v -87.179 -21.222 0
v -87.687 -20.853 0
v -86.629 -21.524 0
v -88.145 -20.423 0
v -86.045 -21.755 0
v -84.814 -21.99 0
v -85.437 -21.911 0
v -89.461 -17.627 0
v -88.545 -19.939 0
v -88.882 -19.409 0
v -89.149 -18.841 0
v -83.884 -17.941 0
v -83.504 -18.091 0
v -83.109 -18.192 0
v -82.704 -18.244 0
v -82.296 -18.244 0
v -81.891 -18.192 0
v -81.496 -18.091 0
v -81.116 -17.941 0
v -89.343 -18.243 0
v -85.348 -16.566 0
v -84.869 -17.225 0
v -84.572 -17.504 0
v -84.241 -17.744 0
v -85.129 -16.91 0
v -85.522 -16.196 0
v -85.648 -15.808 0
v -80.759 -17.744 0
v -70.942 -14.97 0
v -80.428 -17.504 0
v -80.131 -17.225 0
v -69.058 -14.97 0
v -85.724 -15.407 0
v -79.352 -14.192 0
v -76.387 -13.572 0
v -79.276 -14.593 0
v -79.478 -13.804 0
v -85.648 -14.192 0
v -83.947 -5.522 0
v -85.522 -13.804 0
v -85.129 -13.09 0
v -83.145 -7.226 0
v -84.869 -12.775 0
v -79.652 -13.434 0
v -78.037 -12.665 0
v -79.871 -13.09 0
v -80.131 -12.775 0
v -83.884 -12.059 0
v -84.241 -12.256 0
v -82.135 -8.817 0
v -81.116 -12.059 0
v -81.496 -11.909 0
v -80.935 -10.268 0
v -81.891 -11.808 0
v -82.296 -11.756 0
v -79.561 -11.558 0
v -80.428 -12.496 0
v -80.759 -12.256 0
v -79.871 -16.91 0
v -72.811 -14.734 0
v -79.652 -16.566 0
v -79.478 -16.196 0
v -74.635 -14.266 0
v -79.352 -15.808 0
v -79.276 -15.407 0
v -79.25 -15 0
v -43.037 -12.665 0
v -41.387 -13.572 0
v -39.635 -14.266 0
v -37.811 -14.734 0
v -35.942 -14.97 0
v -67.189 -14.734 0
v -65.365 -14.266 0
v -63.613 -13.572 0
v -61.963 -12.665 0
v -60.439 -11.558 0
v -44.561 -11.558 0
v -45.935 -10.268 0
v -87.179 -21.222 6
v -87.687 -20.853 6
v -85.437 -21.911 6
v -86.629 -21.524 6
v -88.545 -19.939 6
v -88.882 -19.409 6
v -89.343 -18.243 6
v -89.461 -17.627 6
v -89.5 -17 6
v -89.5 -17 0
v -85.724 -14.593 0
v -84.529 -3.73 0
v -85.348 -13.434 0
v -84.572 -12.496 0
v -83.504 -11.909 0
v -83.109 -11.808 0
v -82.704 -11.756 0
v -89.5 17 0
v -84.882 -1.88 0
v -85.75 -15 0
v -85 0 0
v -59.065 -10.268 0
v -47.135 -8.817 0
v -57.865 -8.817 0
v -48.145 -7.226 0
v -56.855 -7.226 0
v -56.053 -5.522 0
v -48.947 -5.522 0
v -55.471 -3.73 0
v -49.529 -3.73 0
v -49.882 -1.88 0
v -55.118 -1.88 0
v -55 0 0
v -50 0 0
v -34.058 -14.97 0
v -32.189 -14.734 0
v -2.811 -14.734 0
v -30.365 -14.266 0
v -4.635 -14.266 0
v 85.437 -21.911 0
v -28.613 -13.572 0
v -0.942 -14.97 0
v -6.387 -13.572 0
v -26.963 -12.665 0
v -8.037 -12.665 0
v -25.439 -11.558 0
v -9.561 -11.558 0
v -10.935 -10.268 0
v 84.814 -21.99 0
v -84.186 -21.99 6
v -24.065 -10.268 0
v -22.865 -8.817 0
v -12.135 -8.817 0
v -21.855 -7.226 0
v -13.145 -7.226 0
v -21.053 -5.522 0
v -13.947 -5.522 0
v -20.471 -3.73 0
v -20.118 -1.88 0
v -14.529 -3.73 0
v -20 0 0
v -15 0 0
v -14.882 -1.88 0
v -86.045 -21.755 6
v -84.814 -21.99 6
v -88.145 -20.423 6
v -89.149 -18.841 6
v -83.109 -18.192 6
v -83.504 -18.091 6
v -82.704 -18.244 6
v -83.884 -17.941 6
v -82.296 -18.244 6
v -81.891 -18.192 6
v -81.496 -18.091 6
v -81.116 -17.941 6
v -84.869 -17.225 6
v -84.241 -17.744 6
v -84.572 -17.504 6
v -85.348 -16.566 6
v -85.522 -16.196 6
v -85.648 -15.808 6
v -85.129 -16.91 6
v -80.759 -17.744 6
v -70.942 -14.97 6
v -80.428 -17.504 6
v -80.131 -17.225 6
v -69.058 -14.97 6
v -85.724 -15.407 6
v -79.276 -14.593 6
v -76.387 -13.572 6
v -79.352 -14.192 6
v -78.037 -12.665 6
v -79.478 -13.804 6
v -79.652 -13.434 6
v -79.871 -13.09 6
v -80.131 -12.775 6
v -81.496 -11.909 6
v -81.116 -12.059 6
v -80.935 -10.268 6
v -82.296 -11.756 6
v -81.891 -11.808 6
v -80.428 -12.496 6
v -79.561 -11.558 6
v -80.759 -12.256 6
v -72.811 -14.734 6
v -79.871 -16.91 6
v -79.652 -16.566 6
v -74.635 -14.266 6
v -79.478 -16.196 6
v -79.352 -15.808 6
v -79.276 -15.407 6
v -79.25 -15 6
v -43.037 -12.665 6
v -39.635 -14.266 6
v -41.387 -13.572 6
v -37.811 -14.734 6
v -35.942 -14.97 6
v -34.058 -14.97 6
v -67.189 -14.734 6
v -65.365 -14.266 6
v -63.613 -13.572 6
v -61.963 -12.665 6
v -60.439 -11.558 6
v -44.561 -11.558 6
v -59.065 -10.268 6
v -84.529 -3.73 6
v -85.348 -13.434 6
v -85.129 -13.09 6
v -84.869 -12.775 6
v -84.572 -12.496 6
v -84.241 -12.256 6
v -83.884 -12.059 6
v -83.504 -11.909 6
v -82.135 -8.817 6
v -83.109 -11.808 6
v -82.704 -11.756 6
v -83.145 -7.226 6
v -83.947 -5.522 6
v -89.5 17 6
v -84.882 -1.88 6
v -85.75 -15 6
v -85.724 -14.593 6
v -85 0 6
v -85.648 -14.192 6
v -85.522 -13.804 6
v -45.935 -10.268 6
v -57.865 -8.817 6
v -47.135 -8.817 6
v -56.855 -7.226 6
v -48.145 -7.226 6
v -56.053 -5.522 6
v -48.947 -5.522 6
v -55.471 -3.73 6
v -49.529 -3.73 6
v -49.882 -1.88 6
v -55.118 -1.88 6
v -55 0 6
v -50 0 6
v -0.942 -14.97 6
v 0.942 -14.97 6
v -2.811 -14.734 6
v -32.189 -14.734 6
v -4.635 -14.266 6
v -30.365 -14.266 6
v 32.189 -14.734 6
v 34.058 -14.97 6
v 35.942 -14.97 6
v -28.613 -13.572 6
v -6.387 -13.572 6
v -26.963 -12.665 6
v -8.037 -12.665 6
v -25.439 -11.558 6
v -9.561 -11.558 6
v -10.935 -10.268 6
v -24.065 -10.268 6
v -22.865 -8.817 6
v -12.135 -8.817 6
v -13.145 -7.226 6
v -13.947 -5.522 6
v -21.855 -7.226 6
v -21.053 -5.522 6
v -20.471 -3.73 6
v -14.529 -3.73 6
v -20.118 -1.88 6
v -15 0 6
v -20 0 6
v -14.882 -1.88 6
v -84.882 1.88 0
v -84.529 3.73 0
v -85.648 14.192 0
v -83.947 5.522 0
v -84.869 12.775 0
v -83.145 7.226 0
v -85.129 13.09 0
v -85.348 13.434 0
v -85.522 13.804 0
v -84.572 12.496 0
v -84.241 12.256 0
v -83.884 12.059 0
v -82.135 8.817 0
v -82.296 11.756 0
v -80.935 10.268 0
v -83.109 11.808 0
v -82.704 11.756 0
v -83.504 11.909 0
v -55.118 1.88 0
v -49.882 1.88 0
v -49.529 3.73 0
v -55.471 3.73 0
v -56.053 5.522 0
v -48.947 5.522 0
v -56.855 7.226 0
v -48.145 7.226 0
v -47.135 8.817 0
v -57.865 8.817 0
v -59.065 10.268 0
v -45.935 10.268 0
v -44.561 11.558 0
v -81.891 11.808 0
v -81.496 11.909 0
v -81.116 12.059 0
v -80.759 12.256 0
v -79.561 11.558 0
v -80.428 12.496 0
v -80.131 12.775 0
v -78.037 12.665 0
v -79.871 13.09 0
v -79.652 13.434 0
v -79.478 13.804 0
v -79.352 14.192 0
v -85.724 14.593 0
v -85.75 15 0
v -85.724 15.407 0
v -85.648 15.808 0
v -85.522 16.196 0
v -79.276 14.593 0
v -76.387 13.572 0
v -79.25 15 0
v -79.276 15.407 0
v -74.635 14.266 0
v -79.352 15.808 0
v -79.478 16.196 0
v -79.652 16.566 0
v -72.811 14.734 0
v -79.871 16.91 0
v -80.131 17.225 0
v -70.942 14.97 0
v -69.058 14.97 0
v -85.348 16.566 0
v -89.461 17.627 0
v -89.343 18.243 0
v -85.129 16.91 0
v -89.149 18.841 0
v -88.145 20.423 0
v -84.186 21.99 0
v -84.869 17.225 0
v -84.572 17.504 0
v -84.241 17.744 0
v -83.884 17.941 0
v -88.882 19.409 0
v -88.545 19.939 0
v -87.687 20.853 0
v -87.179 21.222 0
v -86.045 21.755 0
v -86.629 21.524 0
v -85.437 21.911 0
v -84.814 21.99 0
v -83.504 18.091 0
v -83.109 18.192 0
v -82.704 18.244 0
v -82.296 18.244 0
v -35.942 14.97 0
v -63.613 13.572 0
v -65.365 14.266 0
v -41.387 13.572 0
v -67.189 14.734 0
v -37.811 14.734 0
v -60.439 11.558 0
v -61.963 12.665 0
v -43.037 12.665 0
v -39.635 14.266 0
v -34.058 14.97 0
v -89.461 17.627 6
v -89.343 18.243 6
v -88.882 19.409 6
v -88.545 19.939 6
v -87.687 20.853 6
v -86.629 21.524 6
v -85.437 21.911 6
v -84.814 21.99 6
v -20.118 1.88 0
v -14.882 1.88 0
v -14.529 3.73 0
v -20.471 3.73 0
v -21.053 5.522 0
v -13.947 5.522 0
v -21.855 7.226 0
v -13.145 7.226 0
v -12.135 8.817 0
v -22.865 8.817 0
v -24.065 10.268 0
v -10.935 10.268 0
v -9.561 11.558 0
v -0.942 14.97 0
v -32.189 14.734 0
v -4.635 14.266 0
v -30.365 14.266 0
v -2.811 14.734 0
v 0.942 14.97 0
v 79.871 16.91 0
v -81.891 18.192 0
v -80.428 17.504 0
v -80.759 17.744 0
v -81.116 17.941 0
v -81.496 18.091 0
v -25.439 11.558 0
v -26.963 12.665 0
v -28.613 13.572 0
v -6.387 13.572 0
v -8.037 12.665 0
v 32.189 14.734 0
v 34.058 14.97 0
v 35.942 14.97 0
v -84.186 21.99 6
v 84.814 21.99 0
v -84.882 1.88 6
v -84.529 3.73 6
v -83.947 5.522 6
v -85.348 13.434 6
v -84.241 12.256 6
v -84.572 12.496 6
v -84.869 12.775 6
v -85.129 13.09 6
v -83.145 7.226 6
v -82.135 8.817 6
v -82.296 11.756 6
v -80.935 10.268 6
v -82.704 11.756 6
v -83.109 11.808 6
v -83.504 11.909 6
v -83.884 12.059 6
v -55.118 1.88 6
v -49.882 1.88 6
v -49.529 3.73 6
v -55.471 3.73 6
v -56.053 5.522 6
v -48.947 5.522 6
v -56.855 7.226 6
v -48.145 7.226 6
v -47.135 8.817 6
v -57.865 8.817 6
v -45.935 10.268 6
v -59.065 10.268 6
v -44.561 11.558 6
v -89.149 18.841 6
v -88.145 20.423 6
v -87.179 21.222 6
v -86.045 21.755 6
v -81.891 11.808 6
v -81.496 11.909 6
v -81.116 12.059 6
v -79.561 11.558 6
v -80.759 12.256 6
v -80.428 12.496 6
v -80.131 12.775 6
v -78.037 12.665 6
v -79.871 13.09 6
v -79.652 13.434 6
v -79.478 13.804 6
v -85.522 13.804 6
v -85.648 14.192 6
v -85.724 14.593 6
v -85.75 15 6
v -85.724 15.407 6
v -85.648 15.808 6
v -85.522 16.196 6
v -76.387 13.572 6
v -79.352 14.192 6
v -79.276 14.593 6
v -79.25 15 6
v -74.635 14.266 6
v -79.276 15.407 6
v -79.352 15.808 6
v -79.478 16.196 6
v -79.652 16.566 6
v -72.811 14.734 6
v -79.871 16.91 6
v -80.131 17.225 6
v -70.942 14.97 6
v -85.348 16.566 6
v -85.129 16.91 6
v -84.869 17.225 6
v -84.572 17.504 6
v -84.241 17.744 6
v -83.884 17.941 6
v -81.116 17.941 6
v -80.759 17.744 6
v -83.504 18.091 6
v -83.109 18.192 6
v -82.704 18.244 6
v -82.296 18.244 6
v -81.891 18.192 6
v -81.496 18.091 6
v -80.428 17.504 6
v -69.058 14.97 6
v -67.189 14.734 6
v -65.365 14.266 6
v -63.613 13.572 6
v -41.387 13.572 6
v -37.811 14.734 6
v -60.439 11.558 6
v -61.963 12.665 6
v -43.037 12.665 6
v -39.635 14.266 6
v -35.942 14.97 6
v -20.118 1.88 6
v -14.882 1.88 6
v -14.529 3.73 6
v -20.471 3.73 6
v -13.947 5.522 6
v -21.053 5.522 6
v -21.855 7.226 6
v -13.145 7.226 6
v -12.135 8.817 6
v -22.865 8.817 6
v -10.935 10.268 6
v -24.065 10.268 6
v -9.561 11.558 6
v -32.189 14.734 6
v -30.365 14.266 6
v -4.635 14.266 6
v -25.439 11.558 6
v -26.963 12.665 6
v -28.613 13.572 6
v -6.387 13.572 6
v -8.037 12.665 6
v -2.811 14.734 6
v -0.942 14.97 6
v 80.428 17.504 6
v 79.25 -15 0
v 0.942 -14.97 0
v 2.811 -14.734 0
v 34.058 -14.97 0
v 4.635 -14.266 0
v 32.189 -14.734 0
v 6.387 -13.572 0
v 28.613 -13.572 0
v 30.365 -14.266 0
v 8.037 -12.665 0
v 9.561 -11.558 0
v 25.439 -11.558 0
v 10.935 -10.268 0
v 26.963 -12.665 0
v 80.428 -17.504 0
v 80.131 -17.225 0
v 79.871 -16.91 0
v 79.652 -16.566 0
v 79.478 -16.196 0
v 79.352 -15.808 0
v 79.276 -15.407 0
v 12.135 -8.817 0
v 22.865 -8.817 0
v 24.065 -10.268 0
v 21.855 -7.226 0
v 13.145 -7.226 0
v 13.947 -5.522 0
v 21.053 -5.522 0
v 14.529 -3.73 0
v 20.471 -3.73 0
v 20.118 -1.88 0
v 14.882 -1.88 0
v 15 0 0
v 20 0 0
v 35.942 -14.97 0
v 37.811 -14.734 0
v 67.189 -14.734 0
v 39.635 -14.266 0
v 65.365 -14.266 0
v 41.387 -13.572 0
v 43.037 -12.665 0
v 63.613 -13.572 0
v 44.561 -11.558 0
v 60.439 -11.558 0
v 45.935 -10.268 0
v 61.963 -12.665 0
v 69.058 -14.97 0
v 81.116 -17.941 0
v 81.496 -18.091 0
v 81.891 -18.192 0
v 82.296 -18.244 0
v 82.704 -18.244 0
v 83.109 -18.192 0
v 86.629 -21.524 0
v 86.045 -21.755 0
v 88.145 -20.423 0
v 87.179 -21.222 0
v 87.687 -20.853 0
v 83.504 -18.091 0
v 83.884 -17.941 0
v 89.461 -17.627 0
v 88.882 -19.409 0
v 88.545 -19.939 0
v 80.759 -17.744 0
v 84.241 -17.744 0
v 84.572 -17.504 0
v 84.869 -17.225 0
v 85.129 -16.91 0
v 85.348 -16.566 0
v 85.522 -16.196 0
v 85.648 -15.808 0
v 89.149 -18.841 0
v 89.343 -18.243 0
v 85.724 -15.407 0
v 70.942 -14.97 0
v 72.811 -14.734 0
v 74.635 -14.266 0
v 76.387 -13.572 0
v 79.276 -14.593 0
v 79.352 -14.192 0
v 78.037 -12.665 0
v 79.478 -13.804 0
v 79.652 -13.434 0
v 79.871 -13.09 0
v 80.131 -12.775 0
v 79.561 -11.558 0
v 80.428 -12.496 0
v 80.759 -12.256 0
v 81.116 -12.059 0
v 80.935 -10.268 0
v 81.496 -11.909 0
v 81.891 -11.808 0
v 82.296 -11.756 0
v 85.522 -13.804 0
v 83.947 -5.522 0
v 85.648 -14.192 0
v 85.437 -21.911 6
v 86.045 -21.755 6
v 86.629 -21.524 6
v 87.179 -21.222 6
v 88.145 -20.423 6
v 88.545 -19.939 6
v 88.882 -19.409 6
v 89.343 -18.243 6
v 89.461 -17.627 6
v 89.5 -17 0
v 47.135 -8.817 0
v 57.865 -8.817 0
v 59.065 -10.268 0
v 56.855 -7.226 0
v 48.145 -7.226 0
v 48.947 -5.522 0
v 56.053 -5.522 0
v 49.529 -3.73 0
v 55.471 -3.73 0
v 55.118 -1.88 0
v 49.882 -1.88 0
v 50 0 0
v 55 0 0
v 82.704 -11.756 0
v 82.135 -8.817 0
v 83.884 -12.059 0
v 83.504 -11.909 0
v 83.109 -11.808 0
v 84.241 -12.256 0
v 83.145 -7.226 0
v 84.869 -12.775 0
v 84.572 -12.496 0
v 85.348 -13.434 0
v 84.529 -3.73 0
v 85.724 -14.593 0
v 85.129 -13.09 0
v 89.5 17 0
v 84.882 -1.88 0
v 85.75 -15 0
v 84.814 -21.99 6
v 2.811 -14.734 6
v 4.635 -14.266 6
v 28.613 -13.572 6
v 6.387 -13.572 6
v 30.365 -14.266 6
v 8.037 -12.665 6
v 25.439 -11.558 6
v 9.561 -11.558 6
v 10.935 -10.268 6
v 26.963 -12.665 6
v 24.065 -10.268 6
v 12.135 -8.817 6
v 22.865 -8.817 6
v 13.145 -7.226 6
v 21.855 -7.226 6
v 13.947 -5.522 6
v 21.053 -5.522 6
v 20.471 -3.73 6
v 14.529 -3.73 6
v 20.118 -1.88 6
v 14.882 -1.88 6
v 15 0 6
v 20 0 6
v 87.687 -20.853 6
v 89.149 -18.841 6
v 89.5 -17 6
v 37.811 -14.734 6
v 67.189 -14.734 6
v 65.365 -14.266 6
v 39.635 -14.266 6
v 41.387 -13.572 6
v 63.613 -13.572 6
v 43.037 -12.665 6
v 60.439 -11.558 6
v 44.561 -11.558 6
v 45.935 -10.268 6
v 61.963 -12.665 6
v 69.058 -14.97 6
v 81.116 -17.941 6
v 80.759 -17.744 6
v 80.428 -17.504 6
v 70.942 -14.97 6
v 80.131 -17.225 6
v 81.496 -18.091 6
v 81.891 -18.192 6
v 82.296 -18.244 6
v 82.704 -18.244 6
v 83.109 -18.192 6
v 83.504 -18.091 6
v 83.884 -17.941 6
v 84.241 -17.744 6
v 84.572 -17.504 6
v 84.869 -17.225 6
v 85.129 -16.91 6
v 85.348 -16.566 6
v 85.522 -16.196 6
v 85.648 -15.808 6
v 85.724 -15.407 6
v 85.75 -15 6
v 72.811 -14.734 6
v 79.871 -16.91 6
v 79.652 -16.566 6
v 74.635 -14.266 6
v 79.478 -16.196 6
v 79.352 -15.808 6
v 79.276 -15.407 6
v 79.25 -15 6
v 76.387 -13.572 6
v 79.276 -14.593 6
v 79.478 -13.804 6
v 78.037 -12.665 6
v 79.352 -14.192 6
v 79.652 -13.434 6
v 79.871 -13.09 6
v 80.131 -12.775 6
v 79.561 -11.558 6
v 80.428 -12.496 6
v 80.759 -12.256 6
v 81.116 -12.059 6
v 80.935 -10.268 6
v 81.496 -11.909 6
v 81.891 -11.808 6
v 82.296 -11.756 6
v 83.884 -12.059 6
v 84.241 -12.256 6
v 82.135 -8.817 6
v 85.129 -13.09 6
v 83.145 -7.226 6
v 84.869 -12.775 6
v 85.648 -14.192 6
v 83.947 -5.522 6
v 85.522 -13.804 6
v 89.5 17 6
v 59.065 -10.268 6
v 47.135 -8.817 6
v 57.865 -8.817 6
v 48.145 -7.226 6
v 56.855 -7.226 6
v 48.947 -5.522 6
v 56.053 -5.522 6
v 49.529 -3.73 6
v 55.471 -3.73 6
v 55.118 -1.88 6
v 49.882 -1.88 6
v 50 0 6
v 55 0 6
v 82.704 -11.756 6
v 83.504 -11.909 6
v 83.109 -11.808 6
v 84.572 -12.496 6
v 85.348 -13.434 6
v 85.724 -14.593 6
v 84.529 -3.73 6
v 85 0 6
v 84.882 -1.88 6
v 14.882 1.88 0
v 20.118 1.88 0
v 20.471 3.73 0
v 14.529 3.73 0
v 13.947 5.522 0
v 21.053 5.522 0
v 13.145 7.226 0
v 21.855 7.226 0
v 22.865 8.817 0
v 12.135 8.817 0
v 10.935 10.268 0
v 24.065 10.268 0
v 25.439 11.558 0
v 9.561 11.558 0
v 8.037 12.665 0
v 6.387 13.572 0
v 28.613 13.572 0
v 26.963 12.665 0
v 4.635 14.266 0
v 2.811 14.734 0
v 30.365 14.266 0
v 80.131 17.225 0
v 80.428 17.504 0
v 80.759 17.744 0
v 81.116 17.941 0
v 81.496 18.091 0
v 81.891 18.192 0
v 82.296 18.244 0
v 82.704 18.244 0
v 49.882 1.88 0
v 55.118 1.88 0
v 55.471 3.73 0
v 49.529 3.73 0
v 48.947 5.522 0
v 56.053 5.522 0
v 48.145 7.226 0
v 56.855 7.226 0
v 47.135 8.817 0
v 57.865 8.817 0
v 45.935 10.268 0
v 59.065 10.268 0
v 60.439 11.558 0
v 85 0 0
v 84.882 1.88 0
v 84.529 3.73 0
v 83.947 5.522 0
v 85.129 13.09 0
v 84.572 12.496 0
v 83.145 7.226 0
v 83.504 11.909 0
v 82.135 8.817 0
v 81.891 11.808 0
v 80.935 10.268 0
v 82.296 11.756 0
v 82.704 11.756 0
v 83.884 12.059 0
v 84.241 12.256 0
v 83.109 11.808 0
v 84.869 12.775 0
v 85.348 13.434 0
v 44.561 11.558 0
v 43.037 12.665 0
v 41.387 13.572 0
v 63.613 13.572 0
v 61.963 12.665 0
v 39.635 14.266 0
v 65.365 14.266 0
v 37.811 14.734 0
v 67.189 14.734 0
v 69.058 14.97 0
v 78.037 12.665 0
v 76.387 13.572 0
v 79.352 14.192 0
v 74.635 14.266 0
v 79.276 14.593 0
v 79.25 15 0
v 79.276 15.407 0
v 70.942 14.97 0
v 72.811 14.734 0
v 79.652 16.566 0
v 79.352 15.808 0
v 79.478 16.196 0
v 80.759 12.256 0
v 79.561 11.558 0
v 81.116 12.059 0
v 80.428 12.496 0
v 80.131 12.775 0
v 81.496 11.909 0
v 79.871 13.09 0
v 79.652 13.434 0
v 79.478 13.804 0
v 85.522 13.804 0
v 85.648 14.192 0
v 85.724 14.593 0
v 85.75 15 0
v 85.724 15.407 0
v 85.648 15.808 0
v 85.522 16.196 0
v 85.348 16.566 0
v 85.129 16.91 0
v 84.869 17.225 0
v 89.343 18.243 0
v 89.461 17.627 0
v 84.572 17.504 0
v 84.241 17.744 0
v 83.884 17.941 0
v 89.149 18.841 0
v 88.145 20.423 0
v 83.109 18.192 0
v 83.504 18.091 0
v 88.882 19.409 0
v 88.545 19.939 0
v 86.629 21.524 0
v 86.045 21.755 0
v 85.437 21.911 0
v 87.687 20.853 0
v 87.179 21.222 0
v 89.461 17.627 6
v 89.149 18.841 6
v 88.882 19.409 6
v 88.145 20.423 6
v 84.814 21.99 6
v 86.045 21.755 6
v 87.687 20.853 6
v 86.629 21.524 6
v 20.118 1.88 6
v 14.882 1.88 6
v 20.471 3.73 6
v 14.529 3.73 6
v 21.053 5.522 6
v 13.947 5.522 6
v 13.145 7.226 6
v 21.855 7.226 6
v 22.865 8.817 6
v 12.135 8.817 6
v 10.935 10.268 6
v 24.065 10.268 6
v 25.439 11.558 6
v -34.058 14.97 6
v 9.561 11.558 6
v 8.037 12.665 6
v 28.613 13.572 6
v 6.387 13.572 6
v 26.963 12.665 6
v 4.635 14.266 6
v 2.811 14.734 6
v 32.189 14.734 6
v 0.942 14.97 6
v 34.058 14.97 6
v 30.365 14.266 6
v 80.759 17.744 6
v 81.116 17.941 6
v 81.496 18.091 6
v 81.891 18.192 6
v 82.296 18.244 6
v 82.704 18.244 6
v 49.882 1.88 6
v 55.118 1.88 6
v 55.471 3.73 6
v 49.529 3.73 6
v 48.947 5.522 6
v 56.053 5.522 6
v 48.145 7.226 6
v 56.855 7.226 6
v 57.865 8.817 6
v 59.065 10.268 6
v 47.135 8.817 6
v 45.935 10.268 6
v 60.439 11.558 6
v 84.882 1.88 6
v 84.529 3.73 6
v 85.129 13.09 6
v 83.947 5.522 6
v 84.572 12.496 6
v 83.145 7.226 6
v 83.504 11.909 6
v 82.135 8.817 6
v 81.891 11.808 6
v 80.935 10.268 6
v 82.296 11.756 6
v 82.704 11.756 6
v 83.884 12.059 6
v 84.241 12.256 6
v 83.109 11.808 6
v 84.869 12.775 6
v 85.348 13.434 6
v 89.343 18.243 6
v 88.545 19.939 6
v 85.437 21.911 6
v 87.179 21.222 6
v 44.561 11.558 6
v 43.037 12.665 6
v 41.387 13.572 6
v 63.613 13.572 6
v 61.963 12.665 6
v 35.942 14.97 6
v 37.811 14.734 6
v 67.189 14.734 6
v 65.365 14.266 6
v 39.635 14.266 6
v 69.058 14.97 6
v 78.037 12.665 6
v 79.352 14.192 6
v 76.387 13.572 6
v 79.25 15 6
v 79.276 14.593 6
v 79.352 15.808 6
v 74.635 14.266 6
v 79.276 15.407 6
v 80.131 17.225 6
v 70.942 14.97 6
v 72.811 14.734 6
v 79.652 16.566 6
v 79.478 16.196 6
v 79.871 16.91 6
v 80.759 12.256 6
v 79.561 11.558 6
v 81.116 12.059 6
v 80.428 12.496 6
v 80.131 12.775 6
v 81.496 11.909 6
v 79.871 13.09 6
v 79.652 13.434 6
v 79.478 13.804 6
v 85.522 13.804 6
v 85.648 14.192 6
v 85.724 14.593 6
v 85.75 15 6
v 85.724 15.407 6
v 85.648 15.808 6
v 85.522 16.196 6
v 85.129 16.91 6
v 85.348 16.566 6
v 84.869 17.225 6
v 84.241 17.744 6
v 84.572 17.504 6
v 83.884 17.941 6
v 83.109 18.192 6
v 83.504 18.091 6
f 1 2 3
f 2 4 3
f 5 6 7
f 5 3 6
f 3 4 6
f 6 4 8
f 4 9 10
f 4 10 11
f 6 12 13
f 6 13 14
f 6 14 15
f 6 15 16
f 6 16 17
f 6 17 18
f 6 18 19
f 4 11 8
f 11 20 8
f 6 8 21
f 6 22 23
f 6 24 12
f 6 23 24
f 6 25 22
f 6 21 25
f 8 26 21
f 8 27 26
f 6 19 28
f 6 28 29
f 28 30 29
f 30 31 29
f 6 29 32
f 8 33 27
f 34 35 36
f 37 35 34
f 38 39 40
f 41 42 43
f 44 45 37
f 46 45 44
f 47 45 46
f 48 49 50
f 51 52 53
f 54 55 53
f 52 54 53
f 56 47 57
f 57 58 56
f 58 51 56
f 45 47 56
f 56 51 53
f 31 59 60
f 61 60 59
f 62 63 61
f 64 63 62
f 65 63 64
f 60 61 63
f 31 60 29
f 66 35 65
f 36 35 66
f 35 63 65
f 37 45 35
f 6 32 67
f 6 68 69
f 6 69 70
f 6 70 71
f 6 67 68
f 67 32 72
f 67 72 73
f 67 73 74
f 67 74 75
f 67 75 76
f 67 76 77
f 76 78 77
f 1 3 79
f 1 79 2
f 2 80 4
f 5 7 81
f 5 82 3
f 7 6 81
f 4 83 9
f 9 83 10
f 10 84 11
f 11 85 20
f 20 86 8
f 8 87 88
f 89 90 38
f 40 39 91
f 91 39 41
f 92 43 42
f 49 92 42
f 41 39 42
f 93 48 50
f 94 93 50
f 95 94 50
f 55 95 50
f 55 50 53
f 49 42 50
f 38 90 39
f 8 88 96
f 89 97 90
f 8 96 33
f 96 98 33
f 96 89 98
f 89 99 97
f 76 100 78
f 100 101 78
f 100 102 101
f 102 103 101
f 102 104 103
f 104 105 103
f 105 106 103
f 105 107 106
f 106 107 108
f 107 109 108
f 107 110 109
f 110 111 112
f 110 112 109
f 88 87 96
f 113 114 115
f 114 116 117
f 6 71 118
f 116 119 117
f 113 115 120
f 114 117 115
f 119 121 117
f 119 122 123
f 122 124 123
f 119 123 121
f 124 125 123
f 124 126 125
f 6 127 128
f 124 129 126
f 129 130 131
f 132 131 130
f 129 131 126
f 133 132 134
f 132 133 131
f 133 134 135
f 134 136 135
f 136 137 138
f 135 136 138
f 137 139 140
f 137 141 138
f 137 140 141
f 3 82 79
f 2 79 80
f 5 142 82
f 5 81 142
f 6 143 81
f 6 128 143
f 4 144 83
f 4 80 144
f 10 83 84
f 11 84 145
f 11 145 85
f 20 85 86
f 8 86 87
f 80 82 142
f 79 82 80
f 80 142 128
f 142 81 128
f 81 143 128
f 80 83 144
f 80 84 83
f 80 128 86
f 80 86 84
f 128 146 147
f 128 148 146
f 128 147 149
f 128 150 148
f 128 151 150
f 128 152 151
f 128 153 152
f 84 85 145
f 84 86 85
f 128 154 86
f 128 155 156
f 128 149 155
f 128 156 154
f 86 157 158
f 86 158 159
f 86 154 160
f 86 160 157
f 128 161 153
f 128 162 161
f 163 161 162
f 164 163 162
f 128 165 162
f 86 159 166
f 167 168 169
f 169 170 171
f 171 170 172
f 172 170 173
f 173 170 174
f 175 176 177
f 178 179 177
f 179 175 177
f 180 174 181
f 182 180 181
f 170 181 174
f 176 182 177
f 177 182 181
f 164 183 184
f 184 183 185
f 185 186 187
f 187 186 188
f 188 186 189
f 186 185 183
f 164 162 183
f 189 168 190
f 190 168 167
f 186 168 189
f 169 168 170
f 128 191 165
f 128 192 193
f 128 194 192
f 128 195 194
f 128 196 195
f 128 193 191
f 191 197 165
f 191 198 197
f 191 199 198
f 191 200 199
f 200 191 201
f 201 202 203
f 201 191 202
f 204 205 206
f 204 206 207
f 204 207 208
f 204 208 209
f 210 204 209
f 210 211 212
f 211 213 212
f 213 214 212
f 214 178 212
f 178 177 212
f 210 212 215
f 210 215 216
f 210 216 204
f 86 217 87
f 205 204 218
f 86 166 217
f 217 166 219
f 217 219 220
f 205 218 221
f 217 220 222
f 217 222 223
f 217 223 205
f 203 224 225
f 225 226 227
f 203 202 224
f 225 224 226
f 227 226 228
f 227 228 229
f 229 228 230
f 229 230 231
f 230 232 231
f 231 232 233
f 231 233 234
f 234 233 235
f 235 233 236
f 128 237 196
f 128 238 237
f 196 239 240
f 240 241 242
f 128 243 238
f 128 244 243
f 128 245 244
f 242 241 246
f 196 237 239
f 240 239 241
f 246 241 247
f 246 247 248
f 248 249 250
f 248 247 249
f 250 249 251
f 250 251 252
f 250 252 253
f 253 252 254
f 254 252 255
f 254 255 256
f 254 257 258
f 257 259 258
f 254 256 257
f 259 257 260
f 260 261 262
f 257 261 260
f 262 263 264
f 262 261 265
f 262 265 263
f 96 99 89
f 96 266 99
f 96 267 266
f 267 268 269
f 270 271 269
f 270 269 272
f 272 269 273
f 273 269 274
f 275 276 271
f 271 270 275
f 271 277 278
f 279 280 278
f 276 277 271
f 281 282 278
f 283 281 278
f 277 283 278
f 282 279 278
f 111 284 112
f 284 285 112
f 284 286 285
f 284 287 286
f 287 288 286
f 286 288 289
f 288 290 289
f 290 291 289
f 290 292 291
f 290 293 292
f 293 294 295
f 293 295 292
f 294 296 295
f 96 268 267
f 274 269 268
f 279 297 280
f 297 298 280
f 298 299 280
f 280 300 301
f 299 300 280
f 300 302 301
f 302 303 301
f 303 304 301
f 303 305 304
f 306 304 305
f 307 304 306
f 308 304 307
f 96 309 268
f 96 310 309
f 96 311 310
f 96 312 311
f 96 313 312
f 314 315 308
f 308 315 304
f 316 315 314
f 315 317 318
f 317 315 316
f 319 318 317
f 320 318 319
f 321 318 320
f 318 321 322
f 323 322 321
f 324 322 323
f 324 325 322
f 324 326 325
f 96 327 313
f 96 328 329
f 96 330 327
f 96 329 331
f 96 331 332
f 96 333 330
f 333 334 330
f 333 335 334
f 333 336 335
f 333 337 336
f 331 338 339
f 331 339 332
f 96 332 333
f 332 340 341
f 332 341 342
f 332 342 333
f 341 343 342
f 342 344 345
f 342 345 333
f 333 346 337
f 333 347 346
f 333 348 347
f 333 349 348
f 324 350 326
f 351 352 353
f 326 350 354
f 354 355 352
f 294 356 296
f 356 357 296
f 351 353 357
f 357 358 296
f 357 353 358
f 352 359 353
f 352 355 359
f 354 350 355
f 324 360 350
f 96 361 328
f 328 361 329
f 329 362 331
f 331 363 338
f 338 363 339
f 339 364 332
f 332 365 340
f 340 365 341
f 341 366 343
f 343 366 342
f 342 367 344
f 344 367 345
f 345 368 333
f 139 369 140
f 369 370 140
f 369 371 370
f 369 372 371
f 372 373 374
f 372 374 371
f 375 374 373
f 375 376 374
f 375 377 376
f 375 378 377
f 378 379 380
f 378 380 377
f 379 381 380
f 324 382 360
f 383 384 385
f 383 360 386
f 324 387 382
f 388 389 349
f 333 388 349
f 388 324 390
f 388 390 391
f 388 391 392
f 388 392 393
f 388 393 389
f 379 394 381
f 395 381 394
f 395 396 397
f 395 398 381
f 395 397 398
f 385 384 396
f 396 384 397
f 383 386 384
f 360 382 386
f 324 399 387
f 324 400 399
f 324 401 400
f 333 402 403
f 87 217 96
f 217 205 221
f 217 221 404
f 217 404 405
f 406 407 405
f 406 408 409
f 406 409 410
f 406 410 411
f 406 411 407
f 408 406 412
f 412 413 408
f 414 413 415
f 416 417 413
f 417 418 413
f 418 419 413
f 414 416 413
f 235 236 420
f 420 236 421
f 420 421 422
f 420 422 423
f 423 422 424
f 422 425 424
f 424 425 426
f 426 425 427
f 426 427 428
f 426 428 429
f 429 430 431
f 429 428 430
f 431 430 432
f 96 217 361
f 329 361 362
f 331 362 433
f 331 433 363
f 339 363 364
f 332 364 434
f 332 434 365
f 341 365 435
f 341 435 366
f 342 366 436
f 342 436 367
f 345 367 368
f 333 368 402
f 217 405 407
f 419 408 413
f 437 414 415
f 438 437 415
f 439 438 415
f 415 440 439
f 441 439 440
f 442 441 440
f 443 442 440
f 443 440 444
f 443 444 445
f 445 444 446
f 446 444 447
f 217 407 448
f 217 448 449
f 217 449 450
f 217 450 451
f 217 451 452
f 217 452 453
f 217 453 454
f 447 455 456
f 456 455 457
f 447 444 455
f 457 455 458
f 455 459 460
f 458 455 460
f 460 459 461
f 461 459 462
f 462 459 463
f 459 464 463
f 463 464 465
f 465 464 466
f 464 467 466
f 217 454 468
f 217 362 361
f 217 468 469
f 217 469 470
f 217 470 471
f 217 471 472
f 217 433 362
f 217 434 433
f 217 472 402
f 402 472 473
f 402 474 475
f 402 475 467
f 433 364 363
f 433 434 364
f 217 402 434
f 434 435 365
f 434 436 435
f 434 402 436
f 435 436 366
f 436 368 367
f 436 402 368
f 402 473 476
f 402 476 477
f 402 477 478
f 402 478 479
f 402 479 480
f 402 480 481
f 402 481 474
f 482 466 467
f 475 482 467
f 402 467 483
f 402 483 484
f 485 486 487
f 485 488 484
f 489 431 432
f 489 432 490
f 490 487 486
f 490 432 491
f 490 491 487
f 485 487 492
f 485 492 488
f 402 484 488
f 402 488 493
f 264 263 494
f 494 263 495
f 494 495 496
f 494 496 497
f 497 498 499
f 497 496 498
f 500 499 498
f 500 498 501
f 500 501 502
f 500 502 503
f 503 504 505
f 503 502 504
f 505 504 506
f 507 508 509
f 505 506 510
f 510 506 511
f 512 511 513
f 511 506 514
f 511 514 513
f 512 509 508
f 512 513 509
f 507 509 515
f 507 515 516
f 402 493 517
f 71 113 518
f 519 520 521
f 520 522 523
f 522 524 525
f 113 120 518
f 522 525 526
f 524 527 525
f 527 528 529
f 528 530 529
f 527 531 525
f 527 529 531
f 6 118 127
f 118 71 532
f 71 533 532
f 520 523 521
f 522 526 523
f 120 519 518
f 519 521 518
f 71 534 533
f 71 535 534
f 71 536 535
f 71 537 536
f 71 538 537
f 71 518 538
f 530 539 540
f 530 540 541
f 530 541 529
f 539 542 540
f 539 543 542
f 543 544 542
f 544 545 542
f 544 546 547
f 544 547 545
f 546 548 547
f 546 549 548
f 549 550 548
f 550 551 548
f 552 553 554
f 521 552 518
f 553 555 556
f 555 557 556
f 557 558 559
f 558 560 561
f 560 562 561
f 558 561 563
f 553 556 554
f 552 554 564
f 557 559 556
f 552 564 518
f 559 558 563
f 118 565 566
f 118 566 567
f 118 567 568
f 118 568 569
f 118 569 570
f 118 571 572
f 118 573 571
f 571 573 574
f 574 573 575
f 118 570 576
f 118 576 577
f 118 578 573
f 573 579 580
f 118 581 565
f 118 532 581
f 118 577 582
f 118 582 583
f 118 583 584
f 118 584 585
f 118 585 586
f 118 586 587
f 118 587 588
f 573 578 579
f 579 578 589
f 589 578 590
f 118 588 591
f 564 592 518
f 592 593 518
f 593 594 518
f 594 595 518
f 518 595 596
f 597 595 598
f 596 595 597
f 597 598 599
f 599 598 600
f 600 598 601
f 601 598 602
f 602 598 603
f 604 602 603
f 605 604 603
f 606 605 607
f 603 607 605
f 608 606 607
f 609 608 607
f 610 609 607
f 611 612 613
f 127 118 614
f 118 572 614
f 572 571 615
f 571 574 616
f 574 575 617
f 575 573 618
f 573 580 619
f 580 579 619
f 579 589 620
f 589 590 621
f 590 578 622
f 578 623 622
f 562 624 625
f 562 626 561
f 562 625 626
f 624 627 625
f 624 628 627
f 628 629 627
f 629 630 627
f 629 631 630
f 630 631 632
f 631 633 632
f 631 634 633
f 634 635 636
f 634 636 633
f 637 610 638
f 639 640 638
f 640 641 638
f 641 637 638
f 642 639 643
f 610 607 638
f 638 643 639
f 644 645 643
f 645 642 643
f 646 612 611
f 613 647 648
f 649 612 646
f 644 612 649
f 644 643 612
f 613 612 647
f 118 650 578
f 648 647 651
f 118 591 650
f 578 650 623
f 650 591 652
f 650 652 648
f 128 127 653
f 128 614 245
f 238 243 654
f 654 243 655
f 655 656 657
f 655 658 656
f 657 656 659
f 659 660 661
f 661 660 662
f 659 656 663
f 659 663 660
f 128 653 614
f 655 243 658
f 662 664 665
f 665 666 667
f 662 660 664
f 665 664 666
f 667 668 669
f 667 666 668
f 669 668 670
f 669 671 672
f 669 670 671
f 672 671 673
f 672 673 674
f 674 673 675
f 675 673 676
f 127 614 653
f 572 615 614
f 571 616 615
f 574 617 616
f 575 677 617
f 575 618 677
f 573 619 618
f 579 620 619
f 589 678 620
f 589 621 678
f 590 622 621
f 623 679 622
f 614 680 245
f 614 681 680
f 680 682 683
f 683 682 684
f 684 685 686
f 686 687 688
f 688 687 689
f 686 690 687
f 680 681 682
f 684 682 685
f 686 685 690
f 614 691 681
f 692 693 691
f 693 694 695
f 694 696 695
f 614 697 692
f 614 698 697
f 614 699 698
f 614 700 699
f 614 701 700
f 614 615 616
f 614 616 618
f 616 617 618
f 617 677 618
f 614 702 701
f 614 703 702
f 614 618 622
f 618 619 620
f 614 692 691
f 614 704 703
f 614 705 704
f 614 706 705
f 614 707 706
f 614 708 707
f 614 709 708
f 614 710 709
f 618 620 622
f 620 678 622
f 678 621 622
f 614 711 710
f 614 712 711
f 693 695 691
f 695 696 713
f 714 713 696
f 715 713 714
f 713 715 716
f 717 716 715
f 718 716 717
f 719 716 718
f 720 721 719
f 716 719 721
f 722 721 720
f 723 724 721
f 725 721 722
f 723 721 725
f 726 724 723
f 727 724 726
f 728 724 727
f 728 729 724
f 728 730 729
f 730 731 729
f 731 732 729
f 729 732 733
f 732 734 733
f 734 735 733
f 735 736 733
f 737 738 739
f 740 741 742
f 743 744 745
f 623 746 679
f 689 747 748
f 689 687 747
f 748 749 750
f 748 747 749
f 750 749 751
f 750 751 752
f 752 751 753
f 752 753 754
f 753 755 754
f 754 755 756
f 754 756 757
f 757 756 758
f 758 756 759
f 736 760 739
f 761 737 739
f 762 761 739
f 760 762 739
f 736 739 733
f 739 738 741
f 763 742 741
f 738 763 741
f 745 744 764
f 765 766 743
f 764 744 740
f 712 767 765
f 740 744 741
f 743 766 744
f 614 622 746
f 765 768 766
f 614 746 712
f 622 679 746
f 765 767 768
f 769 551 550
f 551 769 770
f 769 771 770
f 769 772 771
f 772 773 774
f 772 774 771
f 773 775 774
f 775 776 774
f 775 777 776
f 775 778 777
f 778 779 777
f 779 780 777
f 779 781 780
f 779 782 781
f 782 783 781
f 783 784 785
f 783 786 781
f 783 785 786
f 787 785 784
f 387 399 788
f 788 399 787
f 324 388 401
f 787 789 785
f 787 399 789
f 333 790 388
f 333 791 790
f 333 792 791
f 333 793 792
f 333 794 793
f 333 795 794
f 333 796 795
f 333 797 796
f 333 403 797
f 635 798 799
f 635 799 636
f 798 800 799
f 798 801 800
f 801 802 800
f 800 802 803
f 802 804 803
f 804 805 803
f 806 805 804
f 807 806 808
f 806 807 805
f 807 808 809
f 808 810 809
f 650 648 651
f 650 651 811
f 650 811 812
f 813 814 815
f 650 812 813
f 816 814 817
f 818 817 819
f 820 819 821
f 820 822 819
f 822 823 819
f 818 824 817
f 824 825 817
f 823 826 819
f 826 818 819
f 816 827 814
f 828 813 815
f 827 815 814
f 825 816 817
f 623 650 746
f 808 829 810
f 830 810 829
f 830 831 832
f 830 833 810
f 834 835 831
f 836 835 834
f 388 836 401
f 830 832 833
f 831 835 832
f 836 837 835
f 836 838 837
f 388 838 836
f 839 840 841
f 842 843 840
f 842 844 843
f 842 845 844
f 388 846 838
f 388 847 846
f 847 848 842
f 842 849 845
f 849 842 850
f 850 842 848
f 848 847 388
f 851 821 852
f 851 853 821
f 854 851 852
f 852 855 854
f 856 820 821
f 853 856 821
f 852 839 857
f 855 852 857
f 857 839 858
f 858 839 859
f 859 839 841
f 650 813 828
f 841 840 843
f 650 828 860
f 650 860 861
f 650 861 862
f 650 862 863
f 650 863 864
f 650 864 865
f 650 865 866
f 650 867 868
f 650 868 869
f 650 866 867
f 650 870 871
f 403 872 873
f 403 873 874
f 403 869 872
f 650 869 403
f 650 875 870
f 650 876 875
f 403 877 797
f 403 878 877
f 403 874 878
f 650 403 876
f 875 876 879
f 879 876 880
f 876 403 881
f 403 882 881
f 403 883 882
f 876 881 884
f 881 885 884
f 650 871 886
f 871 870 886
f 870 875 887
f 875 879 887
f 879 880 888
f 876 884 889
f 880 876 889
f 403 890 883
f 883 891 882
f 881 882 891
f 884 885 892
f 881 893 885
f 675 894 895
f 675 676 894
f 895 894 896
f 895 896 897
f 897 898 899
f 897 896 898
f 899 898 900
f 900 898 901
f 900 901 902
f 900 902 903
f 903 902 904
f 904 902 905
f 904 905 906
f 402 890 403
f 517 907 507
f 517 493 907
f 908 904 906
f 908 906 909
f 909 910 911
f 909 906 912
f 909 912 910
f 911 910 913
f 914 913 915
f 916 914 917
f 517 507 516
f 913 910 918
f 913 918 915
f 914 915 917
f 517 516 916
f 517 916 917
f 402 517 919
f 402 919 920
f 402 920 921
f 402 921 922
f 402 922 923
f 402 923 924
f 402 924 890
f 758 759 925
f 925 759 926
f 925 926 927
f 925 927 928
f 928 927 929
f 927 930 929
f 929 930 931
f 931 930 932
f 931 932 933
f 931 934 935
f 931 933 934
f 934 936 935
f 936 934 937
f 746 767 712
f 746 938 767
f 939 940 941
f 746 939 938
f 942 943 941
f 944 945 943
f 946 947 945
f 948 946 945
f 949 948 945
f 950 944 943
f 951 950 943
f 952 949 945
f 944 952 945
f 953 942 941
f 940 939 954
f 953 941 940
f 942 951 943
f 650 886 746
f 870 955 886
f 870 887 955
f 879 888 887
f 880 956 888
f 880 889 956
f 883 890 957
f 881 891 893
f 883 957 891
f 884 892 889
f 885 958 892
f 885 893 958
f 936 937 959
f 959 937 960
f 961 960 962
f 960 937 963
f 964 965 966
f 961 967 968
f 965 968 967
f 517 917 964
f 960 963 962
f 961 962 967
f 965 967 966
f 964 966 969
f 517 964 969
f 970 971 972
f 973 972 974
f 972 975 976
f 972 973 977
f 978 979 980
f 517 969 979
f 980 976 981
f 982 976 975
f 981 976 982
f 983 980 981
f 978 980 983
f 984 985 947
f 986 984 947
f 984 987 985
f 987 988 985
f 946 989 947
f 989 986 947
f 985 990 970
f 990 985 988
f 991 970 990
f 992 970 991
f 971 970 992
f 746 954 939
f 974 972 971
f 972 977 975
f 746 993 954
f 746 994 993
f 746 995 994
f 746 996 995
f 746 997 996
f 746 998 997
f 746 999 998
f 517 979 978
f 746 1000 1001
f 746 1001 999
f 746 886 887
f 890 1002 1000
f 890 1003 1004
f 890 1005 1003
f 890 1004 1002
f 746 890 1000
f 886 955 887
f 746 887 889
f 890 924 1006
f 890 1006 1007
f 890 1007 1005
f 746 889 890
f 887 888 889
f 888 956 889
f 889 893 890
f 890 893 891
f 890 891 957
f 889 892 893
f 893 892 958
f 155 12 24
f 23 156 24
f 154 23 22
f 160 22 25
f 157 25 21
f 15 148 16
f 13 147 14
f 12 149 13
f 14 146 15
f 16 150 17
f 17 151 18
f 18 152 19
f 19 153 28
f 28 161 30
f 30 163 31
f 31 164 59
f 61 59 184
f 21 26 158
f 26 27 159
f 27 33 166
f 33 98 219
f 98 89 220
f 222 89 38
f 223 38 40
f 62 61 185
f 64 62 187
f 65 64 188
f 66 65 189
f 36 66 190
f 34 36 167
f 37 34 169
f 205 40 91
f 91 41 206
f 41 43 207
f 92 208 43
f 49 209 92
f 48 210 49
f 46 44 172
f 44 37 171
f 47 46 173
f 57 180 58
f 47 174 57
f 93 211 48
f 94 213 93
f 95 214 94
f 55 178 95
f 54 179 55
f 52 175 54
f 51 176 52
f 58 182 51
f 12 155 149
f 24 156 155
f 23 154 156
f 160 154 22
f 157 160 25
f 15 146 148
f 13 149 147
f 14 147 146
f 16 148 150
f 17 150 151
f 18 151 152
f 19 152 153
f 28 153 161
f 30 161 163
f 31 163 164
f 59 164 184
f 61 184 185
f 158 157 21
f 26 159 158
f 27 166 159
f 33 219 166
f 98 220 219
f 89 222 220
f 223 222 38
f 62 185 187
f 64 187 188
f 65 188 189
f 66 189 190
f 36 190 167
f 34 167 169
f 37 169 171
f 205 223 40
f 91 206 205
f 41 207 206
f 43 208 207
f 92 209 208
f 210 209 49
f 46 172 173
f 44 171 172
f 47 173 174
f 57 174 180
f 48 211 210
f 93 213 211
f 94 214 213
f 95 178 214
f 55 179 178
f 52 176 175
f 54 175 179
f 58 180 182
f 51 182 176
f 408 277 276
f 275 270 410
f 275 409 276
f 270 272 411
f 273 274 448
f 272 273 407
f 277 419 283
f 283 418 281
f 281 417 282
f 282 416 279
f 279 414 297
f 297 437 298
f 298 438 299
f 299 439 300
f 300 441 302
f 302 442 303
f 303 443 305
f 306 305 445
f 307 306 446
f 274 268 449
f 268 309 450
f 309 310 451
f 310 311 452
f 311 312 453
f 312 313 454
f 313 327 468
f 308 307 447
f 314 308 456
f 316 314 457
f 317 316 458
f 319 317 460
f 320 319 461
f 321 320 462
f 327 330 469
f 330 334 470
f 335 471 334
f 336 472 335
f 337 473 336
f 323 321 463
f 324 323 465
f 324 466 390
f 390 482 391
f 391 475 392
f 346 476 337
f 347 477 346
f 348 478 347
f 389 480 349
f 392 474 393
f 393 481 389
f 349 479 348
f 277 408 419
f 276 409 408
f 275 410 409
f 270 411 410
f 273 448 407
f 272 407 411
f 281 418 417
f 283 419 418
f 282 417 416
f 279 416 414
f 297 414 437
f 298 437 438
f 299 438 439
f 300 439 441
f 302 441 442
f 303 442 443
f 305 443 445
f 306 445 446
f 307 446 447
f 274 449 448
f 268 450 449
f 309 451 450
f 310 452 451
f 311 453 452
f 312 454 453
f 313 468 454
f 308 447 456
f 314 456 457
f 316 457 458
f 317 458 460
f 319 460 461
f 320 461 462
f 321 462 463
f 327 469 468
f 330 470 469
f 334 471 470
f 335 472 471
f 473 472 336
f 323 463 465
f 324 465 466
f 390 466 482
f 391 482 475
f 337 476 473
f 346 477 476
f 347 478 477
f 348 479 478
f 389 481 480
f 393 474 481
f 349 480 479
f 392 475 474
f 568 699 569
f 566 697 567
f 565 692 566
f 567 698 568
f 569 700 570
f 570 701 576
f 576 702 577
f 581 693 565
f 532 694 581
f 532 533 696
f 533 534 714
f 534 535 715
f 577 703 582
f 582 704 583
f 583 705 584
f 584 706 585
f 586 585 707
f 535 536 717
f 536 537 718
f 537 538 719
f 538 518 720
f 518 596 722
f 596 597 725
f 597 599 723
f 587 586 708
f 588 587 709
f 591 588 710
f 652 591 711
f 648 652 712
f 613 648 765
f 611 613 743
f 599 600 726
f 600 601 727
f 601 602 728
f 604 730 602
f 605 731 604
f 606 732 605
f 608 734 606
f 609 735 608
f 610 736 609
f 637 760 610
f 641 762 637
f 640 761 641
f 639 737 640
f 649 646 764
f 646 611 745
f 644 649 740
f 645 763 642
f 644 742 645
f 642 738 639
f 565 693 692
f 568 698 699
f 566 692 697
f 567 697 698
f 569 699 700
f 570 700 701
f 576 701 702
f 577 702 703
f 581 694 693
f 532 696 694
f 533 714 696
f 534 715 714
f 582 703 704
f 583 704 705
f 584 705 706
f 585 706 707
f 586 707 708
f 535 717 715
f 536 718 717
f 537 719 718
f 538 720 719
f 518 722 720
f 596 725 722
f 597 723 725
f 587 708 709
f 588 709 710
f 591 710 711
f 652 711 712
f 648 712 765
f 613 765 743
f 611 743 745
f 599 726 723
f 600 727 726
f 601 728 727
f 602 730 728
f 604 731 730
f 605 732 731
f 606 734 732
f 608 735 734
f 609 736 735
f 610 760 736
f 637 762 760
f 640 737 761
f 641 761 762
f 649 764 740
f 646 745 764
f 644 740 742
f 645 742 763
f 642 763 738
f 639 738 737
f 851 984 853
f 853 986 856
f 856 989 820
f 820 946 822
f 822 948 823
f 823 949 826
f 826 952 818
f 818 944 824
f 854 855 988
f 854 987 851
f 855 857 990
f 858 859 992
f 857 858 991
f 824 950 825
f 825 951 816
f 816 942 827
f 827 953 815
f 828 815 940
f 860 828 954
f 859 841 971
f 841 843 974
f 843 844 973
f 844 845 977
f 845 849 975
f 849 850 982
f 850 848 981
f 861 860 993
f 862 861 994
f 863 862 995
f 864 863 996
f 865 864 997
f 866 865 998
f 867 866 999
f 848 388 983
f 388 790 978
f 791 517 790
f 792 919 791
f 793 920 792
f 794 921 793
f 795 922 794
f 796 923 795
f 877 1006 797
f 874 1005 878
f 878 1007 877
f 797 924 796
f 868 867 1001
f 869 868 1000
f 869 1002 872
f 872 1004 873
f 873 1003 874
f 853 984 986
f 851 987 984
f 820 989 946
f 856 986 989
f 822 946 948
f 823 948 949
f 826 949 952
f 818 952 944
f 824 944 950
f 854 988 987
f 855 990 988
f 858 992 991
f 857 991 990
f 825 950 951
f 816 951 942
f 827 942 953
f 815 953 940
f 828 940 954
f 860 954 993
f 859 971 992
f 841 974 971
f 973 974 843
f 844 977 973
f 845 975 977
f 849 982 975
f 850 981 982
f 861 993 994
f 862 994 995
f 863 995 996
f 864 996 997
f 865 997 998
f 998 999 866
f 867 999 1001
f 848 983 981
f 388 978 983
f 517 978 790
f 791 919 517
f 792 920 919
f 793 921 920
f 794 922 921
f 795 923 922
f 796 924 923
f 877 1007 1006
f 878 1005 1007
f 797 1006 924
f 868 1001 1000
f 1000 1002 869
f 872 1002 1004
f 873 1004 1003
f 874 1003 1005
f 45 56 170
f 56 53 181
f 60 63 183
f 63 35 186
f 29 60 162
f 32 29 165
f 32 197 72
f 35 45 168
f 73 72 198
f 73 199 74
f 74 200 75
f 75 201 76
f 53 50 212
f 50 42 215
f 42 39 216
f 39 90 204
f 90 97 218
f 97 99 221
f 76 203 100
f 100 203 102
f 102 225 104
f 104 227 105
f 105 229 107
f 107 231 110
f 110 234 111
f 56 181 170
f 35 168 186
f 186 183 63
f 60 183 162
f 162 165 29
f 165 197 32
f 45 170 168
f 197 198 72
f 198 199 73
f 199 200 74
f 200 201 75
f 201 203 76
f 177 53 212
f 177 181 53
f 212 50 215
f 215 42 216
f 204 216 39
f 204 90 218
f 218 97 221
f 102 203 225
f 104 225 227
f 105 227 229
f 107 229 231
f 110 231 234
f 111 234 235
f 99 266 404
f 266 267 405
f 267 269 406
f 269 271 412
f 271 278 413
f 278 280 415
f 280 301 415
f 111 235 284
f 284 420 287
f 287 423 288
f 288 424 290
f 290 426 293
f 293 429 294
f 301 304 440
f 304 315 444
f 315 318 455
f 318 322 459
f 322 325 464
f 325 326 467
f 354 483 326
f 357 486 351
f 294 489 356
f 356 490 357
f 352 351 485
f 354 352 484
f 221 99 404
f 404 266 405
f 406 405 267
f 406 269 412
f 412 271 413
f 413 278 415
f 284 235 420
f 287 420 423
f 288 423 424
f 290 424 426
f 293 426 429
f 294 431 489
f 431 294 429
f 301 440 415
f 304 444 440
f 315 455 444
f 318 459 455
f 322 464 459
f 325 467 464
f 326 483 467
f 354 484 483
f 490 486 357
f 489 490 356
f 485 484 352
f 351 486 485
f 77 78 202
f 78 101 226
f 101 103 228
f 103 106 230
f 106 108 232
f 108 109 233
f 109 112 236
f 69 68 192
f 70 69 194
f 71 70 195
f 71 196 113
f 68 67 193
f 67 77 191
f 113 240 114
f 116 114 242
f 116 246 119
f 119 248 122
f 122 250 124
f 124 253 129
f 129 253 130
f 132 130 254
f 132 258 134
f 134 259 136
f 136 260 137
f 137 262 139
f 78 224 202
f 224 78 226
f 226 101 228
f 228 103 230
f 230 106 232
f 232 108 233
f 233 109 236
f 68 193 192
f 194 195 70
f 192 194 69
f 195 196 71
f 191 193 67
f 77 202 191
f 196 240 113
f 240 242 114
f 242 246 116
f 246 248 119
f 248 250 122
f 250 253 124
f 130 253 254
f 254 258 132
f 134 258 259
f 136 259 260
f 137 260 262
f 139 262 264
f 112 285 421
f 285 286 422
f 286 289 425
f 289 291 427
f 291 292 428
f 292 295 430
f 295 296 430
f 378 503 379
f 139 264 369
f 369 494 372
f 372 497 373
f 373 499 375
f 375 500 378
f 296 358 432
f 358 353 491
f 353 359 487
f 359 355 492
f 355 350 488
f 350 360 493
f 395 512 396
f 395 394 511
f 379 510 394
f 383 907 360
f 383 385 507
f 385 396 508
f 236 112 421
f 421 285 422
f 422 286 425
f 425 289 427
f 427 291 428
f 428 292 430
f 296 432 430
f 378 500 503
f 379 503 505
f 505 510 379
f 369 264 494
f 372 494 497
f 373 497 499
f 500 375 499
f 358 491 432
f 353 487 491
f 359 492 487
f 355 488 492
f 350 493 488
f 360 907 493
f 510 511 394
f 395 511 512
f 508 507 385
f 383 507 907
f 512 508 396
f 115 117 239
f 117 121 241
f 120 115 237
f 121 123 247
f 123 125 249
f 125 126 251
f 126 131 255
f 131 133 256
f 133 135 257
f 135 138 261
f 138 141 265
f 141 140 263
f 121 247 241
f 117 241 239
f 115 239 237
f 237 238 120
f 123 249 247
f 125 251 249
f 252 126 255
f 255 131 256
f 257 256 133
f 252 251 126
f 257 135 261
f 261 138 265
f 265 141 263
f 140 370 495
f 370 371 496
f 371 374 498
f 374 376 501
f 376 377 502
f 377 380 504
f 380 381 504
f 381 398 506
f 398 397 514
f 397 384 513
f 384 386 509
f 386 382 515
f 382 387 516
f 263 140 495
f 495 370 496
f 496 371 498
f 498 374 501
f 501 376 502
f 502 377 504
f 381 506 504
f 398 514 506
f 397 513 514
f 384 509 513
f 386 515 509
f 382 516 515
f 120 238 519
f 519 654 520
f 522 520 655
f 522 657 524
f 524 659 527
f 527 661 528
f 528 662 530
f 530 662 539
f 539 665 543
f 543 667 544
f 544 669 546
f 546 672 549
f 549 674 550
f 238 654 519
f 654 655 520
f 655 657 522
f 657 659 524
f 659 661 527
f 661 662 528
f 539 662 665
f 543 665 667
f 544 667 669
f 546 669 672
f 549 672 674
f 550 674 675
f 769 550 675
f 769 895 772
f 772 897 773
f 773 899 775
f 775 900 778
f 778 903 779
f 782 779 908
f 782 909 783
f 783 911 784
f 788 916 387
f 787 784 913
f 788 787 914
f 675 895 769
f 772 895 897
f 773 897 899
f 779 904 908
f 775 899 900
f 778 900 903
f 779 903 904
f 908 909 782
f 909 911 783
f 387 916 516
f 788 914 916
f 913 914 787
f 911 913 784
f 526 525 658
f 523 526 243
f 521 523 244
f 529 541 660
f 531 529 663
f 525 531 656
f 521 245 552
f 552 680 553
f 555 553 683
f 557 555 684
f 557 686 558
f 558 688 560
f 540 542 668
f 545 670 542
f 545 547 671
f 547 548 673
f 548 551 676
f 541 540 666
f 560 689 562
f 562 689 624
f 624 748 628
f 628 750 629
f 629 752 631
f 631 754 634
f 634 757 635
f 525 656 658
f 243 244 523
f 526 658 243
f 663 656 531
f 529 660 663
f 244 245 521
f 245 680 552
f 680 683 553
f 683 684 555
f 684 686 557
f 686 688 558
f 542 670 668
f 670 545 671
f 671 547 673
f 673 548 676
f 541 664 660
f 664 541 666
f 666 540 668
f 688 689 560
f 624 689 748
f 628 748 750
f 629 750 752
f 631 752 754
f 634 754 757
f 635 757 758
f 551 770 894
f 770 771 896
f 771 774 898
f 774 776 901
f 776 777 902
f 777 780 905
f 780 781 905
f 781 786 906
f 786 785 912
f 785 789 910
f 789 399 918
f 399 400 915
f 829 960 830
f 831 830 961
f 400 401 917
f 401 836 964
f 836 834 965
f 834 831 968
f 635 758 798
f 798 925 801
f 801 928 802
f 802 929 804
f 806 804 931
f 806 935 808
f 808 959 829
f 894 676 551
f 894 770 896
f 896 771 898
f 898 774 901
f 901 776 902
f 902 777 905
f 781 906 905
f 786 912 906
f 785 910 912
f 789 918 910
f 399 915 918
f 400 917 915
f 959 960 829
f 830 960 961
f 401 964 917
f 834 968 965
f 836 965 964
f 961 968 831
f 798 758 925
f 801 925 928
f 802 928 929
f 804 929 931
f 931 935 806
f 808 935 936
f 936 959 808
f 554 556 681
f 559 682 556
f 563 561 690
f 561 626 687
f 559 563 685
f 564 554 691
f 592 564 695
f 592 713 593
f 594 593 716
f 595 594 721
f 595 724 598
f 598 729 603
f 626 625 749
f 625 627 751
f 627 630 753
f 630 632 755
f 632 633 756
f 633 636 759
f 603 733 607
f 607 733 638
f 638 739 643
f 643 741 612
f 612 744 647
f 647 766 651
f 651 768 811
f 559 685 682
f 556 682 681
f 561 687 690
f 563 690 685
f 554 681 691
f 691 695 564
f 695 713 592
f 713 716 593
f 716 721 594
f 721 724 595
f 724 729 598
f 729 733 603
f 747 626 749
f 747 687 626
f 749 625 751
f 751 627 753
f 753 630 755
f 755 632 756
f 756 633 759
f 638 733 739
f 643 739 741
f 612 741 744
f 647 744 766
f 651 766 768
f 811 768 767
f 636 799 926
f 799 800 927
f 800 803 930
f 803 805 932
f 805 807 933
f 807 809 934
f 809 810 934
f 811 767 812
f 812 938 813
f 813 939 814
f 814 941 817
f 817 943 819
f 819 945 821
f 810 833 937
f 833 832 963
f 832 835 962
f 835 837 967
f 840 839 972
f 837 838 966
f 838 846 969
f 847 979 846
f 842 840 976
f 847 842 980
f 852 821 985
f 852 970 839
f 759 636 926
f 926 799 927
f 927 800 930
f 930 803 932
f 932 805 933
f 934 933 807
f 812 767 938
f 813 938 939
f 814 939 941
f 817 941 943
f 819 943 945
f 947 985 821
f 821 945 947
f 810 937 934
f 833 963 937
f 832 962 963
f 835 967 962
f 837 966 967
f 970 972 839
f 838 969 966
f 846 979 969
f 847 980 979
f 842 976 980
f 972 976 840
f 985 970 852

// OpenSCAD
$fn = 50;

difference() {
	union() {
		hull() {
			translate(v = [-84.5, 17.0, 0]) {
				cylinder(h = 6, r = 5);
			}
			translate(v = [84.5, 17.0, 0]) {
				cylinder(h = 6, r = 5);
			}
			translate(v = [-84.5, -17.0, 0]) {
				cylinder(h = 6, r = 5);
			}
			translate(v = [84.5, -17.0, 0]) {
				cylinder(h = 6, r = 5);
			}
		}
	}
	union() {
		translate(v = [-82.5, -15.0, -100.0]) {
			cylinder(h = 200, r = 3.25);
		}
		translate(v = [-82.5, 15.0, -100.0]) {
			cylinder(h = 200, r = 3.25);
		}
		translate(v = [82.5, -15.0, -100.0]) {
			cylinder(h = 200, r = 3.25);
		}
		translate(v = [82.5, 15.0, -100.0]) {
			cylinder(h = 200, r = 3.25);
		}
		translate(v = [-82.5, -15.0, -100.0]) {
			cylinder(h = 200, r = 1.8);
		}
		translate(v = [-82.5, 15.0, -100.0]) {
			cylinder(h = 200, r = 1.8);
		}
		translate(v = [82.5, -15.0, -100.0]) {
			cylinder(h = 200, r = 1.8);
		}
		translate(v = [82.5, 15.0, -100.0]) {
			cylinder(h = 200, r = 1.8);
		}
		translate(v = [-70.0, 0, 0.0]) {
			cylinder(h = 6, r = 15.0);
		}
		translate(v = [-35.0, 0, 0.0]) {
			cylinder(h = 6, r = 15.0);
		}
		cylinder(h = 6, r = 15.0);
		translate(v = [35.0, 0, 0.0]) {
			cylinder(h = 6, r = 15.0);
		}
		translate(v = [70.0, 0, 0.0]) {
			cylinder(h = 6, r = 15.0);
		}
	}
}
